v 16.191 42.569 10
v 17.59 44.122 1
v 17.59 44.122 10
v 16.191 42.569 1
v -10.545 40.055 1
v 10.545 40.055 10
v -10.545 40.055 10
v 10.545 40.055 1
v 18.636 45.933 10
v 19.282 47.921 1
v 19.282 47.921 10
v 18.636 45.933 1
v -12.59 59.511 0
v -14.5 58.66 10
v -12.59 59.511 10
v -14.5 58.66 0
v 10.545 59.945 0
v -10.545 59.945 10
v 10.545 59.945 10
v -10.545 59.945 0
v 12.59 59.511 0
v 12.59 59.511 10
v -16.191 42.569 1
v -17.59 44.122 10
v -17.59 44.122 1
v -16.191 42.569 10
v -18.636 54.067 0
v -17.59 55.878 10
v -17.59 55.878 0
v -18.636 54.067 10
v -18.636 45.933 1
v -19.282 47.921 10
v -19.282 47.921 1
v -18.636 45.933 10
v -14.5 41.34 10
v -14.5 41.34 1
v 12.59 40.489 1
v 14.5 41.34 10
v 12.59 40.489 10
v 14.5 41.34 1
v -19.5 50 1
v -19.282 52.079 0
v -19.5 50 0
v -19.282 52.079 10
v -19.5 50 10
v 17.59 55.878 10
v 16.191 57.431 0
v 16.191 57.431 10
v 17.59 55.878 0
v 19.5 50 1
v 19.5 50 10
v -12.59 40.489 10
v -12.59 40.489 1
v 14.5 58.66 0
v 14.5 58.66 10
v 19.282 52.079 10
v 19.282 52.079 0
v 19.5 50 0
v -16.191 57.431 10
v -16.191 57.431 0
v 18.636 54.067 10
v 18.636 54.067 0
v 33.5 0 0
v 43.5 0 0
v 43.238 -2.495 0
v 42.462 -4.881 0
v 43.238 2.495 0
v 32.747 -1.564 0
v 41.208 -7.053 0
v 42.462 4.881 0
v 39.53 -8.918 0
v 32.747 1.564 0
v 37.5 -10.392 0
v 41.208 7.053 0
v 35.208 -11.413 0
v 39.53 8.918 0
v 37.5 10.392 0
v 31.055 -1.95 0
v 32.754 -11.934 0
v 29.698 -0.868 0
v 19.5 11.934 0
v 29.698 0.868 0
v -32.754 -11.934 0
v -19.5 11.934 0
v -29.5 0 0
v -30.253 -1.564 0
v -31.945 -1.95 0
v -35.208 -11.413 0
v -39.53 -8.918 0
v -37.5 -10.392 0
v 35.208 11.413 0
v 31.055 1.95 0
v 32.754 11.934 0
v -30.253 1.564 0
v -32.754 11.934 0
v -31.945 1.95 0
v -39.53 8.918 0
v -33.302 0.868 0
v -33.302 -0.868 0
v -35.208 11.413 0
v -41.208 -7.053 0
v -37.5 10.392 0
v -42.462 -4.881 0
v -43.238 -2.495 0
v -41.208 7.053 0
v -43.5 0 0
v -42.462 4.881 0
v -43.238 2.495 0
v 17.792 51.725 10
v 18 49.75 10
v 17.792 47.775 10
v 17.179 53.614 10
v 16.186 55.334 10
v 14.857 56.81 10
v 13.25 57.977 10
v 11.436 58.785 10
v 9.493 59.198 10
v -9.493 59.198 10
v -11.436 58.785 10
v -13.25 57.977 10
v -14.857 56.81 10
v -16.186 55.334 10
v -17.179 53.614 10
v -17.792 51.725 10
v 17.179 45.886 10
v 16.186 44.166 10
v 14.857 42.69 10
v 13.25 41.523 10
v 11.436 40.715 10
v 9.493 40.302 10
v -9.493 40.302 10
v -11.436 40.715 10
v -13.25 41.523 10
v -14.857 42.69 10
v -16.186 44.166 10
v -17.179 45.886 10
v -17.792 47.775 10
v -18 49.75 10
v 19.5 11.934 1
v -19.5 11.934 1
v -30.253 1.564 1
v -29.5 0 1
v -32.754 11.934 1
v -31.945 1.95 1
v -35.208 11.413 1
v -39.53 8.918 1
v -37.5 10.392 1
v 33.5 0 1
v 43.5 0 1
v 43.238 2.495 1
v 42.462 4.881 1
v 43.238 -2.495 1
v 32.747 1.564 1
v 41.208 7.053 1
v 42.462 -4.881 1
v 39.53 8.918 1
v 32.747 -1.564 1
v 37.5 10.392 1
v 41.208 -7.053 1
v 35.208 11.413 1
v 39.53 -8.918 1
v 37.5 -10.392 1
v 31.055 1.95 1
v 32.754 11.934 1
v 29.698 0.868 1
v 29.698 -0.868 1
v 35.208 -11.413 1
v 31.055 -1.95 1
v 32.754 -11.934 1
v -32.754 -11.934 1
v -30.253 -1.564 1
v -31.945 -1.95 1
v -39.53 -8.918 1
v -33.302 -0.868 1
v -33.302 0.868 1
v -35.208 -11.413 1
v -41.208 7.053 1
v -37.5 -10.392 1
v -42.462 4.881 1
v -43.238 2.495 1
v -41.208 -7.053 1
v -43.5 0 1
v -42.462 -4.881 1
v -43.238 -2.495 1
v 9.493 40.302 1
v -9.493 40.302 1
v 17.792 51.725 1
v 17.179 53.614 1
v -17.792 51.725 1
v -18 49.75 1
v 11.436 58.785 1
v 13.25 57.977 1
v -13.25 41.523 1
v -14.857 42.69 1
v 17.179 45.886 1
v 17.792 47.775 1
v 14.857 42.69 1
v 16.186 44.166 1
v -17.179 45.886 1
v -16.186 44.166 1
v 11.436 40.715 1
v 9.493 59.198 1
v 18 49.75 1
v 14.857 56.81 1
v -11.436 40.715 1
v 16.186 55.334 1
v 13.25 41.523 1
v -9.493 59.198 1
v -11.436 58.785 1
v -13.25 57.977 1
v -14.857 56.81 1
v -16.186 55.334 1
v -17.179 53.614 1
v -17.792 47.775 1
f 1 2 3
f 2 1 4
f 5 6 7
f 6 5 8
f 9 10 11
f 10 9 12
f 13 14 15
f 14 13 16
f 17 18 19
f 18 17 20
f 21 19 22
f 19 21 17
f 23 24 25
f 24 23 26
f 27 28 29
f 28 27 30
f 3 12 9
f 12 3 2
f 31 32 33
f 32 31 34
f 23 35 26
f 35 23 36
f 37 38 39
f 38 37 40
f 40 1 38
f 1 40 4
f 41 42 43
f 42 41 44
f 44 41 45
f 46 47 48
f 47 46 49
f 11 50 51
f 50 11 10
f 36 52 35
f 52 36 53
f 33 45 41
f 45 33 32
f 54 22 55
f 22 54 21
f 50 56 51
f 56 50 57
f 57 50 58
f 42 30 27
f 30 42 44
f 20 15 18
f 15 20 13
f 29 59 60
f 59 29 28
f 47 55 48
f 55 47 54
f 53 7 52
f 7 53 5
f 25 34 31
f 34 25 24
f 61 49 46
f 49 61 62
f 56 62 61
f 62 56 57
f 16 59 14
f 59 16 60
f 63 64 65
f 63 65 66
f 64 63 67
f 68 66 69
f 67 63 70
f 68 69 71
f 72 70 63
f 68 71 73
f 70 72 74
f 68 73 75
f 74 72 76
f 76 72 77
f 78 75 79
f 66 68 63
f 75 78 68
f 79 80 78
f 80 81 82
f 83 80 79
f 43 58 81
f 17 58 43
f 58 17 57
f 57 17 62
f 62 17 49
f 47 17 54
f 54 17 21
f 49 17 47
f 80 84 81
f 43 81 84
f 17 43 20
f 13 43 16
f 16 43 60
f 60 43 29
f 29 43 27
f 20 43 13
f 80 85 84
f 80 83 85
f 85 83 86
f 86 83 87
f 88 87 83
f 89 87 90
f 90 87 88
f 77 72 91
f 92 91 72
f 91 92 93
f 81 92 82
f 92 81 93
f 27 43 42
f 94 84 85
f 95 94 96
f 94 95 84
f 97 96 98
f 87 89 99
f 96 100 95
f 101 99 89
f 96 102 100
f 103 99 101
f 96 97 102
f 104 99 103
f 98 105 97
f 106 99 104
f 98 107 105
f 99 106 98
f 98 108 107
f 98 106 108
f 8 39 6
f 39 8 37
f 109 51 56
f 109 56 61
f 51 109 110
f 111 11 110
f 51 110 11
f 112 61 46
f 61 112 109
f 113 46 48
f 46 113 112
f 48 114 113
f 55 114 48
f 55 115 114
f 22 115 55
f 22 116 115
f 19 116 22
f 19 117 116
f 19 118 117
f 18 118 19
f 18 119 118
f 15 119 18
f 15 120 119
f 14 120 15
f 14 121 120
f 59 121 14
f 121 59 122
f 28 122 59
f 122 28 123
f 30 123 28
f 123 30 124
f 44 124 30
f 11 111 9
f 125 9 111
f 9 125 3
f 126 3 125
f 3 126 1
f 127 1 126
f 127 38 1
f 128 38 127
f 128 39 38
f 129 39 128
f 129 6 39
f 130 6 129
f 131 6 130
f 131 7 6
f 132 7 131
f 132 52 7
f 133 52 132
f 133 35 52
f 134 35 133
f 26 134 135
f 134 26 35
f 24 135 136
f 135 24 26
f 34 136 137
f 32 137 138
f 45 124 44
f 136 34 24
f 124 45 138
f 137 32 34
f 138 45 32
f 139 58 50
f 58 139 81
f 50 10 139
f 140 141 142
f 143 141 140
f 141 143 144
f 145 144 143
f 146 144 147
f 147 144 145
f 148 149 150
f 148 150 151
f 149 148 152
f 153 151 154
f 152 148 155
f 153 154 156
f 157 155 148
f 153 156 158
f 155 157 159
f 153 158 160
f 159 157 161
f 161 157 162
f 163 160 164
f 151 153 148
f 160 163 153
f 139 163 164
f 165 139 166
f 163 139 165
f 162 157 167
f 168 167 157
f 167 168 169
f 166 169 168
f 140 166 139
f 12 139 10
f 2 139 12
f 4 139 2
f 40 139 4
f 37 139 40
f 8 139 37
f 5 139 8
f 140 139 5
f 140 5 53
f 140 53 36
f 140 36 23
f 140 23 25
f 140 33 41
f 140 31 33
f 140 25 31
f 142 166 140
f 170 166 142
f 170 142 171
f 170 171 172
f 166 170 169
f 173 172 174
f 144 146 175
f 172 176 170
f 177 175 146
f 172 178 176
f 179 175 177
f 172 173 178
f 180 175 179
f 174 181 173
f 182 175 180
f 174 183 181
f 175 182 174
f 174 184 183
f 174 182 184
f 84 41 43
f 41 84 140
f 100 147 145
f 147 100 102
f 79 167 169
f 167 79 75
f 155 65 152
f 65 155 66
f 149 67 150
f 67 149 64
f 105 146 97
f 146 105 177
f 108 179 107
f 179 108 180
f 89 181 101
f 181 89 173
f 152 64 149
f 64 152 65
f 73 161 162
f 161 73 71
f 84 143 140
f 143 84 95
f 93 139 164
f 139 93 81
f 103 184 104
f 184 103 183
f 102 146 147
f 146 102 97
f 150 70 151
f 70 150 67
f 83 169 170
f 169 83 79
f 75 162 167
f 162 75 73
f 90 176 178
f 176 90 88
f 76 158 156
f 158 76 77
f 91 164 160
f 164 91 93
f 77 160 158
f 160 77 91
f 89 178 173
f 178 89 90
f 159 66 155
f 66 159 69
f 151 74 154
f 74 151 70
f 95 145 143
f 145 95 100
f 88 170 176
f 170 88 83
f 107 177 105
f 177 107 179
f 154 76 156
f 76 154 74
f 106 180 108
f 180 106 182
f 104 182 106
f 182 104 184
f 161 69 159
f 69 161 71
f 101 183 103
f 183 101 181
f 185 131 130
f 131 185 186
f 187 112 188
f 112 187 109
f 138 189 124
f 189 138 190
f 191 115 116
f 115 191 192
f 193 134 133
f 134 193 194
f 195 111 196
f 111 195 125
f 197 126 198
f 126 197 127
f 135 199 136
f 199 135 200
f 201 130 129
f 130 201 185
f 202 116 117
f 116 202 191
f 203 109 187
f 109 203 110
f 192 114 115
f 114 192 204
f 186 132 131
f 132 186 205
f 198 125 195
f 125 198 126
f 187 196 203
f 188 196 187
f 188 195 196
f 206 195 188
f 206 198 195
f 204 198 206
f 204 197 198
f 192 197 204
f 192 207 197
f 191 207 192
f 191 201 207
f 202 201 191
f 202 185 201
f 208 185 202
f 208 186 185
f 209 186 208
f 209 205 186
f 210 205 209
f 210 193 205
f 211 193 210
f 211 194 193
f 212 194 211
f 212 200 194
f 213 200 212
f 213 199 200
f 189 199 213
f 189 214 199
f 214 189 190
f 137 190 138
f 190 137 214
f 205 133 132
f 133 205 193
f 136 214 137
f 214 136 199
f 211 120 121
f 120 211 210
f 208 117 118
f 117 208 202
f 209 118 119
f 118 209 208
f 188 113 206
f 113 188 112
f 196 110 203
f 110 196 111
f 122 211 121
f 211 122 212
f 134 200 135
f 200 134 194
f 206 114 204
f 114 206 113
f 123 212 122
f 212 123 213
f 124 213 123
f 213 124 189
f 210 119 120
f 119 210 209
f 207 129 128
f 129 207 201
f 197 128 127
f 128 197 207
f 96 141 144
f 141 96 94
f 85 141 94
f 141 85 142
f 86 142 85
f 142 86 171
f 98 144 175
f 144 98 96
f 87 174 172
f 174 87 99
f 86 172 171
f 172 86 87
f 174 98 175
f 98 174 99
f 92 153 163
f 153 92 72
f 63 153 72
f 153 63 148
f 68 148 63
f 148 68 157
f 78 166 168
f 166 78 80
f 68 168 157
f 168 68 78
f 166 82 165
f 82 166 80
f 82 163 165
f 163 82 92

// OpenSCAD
module rod() {
    hull() {
        cylinder( r=9.5, h=10 );
        translate([17, 0, 0]) cylinder( r=9.5, h= 10);
    }
}

module holder() {
    translate([-0.5*19, 60-(0.5*20), 0]) 
    hull() {
        cylinder( r=10, h=10 );
        translate([19, 0, 0]) cylinder( r=10, h=10 ); 
    }
    translate([-0.5*39, 0, 0]) cube([39, 50, 1]);
    
    hull() {
        translate([-0.5*63, 0, 0]) cylinder( r=12, h=1);
        translate([0.5*63, 0, 0])  cylinder( r=12, h=1);
    }
}

difference() {
    color([0, 1, 0]) holder();
    color([1, 0, 0]) translate([-0.5*17, 60-(0.5*19)-0.75, 1]) rod();
    
    translate([-0.5*63, 0, -1]) cylinder( d=4, h=3);
    translate([0.5*63, 0, -1])  cylinder( d=4, h=3);
}
